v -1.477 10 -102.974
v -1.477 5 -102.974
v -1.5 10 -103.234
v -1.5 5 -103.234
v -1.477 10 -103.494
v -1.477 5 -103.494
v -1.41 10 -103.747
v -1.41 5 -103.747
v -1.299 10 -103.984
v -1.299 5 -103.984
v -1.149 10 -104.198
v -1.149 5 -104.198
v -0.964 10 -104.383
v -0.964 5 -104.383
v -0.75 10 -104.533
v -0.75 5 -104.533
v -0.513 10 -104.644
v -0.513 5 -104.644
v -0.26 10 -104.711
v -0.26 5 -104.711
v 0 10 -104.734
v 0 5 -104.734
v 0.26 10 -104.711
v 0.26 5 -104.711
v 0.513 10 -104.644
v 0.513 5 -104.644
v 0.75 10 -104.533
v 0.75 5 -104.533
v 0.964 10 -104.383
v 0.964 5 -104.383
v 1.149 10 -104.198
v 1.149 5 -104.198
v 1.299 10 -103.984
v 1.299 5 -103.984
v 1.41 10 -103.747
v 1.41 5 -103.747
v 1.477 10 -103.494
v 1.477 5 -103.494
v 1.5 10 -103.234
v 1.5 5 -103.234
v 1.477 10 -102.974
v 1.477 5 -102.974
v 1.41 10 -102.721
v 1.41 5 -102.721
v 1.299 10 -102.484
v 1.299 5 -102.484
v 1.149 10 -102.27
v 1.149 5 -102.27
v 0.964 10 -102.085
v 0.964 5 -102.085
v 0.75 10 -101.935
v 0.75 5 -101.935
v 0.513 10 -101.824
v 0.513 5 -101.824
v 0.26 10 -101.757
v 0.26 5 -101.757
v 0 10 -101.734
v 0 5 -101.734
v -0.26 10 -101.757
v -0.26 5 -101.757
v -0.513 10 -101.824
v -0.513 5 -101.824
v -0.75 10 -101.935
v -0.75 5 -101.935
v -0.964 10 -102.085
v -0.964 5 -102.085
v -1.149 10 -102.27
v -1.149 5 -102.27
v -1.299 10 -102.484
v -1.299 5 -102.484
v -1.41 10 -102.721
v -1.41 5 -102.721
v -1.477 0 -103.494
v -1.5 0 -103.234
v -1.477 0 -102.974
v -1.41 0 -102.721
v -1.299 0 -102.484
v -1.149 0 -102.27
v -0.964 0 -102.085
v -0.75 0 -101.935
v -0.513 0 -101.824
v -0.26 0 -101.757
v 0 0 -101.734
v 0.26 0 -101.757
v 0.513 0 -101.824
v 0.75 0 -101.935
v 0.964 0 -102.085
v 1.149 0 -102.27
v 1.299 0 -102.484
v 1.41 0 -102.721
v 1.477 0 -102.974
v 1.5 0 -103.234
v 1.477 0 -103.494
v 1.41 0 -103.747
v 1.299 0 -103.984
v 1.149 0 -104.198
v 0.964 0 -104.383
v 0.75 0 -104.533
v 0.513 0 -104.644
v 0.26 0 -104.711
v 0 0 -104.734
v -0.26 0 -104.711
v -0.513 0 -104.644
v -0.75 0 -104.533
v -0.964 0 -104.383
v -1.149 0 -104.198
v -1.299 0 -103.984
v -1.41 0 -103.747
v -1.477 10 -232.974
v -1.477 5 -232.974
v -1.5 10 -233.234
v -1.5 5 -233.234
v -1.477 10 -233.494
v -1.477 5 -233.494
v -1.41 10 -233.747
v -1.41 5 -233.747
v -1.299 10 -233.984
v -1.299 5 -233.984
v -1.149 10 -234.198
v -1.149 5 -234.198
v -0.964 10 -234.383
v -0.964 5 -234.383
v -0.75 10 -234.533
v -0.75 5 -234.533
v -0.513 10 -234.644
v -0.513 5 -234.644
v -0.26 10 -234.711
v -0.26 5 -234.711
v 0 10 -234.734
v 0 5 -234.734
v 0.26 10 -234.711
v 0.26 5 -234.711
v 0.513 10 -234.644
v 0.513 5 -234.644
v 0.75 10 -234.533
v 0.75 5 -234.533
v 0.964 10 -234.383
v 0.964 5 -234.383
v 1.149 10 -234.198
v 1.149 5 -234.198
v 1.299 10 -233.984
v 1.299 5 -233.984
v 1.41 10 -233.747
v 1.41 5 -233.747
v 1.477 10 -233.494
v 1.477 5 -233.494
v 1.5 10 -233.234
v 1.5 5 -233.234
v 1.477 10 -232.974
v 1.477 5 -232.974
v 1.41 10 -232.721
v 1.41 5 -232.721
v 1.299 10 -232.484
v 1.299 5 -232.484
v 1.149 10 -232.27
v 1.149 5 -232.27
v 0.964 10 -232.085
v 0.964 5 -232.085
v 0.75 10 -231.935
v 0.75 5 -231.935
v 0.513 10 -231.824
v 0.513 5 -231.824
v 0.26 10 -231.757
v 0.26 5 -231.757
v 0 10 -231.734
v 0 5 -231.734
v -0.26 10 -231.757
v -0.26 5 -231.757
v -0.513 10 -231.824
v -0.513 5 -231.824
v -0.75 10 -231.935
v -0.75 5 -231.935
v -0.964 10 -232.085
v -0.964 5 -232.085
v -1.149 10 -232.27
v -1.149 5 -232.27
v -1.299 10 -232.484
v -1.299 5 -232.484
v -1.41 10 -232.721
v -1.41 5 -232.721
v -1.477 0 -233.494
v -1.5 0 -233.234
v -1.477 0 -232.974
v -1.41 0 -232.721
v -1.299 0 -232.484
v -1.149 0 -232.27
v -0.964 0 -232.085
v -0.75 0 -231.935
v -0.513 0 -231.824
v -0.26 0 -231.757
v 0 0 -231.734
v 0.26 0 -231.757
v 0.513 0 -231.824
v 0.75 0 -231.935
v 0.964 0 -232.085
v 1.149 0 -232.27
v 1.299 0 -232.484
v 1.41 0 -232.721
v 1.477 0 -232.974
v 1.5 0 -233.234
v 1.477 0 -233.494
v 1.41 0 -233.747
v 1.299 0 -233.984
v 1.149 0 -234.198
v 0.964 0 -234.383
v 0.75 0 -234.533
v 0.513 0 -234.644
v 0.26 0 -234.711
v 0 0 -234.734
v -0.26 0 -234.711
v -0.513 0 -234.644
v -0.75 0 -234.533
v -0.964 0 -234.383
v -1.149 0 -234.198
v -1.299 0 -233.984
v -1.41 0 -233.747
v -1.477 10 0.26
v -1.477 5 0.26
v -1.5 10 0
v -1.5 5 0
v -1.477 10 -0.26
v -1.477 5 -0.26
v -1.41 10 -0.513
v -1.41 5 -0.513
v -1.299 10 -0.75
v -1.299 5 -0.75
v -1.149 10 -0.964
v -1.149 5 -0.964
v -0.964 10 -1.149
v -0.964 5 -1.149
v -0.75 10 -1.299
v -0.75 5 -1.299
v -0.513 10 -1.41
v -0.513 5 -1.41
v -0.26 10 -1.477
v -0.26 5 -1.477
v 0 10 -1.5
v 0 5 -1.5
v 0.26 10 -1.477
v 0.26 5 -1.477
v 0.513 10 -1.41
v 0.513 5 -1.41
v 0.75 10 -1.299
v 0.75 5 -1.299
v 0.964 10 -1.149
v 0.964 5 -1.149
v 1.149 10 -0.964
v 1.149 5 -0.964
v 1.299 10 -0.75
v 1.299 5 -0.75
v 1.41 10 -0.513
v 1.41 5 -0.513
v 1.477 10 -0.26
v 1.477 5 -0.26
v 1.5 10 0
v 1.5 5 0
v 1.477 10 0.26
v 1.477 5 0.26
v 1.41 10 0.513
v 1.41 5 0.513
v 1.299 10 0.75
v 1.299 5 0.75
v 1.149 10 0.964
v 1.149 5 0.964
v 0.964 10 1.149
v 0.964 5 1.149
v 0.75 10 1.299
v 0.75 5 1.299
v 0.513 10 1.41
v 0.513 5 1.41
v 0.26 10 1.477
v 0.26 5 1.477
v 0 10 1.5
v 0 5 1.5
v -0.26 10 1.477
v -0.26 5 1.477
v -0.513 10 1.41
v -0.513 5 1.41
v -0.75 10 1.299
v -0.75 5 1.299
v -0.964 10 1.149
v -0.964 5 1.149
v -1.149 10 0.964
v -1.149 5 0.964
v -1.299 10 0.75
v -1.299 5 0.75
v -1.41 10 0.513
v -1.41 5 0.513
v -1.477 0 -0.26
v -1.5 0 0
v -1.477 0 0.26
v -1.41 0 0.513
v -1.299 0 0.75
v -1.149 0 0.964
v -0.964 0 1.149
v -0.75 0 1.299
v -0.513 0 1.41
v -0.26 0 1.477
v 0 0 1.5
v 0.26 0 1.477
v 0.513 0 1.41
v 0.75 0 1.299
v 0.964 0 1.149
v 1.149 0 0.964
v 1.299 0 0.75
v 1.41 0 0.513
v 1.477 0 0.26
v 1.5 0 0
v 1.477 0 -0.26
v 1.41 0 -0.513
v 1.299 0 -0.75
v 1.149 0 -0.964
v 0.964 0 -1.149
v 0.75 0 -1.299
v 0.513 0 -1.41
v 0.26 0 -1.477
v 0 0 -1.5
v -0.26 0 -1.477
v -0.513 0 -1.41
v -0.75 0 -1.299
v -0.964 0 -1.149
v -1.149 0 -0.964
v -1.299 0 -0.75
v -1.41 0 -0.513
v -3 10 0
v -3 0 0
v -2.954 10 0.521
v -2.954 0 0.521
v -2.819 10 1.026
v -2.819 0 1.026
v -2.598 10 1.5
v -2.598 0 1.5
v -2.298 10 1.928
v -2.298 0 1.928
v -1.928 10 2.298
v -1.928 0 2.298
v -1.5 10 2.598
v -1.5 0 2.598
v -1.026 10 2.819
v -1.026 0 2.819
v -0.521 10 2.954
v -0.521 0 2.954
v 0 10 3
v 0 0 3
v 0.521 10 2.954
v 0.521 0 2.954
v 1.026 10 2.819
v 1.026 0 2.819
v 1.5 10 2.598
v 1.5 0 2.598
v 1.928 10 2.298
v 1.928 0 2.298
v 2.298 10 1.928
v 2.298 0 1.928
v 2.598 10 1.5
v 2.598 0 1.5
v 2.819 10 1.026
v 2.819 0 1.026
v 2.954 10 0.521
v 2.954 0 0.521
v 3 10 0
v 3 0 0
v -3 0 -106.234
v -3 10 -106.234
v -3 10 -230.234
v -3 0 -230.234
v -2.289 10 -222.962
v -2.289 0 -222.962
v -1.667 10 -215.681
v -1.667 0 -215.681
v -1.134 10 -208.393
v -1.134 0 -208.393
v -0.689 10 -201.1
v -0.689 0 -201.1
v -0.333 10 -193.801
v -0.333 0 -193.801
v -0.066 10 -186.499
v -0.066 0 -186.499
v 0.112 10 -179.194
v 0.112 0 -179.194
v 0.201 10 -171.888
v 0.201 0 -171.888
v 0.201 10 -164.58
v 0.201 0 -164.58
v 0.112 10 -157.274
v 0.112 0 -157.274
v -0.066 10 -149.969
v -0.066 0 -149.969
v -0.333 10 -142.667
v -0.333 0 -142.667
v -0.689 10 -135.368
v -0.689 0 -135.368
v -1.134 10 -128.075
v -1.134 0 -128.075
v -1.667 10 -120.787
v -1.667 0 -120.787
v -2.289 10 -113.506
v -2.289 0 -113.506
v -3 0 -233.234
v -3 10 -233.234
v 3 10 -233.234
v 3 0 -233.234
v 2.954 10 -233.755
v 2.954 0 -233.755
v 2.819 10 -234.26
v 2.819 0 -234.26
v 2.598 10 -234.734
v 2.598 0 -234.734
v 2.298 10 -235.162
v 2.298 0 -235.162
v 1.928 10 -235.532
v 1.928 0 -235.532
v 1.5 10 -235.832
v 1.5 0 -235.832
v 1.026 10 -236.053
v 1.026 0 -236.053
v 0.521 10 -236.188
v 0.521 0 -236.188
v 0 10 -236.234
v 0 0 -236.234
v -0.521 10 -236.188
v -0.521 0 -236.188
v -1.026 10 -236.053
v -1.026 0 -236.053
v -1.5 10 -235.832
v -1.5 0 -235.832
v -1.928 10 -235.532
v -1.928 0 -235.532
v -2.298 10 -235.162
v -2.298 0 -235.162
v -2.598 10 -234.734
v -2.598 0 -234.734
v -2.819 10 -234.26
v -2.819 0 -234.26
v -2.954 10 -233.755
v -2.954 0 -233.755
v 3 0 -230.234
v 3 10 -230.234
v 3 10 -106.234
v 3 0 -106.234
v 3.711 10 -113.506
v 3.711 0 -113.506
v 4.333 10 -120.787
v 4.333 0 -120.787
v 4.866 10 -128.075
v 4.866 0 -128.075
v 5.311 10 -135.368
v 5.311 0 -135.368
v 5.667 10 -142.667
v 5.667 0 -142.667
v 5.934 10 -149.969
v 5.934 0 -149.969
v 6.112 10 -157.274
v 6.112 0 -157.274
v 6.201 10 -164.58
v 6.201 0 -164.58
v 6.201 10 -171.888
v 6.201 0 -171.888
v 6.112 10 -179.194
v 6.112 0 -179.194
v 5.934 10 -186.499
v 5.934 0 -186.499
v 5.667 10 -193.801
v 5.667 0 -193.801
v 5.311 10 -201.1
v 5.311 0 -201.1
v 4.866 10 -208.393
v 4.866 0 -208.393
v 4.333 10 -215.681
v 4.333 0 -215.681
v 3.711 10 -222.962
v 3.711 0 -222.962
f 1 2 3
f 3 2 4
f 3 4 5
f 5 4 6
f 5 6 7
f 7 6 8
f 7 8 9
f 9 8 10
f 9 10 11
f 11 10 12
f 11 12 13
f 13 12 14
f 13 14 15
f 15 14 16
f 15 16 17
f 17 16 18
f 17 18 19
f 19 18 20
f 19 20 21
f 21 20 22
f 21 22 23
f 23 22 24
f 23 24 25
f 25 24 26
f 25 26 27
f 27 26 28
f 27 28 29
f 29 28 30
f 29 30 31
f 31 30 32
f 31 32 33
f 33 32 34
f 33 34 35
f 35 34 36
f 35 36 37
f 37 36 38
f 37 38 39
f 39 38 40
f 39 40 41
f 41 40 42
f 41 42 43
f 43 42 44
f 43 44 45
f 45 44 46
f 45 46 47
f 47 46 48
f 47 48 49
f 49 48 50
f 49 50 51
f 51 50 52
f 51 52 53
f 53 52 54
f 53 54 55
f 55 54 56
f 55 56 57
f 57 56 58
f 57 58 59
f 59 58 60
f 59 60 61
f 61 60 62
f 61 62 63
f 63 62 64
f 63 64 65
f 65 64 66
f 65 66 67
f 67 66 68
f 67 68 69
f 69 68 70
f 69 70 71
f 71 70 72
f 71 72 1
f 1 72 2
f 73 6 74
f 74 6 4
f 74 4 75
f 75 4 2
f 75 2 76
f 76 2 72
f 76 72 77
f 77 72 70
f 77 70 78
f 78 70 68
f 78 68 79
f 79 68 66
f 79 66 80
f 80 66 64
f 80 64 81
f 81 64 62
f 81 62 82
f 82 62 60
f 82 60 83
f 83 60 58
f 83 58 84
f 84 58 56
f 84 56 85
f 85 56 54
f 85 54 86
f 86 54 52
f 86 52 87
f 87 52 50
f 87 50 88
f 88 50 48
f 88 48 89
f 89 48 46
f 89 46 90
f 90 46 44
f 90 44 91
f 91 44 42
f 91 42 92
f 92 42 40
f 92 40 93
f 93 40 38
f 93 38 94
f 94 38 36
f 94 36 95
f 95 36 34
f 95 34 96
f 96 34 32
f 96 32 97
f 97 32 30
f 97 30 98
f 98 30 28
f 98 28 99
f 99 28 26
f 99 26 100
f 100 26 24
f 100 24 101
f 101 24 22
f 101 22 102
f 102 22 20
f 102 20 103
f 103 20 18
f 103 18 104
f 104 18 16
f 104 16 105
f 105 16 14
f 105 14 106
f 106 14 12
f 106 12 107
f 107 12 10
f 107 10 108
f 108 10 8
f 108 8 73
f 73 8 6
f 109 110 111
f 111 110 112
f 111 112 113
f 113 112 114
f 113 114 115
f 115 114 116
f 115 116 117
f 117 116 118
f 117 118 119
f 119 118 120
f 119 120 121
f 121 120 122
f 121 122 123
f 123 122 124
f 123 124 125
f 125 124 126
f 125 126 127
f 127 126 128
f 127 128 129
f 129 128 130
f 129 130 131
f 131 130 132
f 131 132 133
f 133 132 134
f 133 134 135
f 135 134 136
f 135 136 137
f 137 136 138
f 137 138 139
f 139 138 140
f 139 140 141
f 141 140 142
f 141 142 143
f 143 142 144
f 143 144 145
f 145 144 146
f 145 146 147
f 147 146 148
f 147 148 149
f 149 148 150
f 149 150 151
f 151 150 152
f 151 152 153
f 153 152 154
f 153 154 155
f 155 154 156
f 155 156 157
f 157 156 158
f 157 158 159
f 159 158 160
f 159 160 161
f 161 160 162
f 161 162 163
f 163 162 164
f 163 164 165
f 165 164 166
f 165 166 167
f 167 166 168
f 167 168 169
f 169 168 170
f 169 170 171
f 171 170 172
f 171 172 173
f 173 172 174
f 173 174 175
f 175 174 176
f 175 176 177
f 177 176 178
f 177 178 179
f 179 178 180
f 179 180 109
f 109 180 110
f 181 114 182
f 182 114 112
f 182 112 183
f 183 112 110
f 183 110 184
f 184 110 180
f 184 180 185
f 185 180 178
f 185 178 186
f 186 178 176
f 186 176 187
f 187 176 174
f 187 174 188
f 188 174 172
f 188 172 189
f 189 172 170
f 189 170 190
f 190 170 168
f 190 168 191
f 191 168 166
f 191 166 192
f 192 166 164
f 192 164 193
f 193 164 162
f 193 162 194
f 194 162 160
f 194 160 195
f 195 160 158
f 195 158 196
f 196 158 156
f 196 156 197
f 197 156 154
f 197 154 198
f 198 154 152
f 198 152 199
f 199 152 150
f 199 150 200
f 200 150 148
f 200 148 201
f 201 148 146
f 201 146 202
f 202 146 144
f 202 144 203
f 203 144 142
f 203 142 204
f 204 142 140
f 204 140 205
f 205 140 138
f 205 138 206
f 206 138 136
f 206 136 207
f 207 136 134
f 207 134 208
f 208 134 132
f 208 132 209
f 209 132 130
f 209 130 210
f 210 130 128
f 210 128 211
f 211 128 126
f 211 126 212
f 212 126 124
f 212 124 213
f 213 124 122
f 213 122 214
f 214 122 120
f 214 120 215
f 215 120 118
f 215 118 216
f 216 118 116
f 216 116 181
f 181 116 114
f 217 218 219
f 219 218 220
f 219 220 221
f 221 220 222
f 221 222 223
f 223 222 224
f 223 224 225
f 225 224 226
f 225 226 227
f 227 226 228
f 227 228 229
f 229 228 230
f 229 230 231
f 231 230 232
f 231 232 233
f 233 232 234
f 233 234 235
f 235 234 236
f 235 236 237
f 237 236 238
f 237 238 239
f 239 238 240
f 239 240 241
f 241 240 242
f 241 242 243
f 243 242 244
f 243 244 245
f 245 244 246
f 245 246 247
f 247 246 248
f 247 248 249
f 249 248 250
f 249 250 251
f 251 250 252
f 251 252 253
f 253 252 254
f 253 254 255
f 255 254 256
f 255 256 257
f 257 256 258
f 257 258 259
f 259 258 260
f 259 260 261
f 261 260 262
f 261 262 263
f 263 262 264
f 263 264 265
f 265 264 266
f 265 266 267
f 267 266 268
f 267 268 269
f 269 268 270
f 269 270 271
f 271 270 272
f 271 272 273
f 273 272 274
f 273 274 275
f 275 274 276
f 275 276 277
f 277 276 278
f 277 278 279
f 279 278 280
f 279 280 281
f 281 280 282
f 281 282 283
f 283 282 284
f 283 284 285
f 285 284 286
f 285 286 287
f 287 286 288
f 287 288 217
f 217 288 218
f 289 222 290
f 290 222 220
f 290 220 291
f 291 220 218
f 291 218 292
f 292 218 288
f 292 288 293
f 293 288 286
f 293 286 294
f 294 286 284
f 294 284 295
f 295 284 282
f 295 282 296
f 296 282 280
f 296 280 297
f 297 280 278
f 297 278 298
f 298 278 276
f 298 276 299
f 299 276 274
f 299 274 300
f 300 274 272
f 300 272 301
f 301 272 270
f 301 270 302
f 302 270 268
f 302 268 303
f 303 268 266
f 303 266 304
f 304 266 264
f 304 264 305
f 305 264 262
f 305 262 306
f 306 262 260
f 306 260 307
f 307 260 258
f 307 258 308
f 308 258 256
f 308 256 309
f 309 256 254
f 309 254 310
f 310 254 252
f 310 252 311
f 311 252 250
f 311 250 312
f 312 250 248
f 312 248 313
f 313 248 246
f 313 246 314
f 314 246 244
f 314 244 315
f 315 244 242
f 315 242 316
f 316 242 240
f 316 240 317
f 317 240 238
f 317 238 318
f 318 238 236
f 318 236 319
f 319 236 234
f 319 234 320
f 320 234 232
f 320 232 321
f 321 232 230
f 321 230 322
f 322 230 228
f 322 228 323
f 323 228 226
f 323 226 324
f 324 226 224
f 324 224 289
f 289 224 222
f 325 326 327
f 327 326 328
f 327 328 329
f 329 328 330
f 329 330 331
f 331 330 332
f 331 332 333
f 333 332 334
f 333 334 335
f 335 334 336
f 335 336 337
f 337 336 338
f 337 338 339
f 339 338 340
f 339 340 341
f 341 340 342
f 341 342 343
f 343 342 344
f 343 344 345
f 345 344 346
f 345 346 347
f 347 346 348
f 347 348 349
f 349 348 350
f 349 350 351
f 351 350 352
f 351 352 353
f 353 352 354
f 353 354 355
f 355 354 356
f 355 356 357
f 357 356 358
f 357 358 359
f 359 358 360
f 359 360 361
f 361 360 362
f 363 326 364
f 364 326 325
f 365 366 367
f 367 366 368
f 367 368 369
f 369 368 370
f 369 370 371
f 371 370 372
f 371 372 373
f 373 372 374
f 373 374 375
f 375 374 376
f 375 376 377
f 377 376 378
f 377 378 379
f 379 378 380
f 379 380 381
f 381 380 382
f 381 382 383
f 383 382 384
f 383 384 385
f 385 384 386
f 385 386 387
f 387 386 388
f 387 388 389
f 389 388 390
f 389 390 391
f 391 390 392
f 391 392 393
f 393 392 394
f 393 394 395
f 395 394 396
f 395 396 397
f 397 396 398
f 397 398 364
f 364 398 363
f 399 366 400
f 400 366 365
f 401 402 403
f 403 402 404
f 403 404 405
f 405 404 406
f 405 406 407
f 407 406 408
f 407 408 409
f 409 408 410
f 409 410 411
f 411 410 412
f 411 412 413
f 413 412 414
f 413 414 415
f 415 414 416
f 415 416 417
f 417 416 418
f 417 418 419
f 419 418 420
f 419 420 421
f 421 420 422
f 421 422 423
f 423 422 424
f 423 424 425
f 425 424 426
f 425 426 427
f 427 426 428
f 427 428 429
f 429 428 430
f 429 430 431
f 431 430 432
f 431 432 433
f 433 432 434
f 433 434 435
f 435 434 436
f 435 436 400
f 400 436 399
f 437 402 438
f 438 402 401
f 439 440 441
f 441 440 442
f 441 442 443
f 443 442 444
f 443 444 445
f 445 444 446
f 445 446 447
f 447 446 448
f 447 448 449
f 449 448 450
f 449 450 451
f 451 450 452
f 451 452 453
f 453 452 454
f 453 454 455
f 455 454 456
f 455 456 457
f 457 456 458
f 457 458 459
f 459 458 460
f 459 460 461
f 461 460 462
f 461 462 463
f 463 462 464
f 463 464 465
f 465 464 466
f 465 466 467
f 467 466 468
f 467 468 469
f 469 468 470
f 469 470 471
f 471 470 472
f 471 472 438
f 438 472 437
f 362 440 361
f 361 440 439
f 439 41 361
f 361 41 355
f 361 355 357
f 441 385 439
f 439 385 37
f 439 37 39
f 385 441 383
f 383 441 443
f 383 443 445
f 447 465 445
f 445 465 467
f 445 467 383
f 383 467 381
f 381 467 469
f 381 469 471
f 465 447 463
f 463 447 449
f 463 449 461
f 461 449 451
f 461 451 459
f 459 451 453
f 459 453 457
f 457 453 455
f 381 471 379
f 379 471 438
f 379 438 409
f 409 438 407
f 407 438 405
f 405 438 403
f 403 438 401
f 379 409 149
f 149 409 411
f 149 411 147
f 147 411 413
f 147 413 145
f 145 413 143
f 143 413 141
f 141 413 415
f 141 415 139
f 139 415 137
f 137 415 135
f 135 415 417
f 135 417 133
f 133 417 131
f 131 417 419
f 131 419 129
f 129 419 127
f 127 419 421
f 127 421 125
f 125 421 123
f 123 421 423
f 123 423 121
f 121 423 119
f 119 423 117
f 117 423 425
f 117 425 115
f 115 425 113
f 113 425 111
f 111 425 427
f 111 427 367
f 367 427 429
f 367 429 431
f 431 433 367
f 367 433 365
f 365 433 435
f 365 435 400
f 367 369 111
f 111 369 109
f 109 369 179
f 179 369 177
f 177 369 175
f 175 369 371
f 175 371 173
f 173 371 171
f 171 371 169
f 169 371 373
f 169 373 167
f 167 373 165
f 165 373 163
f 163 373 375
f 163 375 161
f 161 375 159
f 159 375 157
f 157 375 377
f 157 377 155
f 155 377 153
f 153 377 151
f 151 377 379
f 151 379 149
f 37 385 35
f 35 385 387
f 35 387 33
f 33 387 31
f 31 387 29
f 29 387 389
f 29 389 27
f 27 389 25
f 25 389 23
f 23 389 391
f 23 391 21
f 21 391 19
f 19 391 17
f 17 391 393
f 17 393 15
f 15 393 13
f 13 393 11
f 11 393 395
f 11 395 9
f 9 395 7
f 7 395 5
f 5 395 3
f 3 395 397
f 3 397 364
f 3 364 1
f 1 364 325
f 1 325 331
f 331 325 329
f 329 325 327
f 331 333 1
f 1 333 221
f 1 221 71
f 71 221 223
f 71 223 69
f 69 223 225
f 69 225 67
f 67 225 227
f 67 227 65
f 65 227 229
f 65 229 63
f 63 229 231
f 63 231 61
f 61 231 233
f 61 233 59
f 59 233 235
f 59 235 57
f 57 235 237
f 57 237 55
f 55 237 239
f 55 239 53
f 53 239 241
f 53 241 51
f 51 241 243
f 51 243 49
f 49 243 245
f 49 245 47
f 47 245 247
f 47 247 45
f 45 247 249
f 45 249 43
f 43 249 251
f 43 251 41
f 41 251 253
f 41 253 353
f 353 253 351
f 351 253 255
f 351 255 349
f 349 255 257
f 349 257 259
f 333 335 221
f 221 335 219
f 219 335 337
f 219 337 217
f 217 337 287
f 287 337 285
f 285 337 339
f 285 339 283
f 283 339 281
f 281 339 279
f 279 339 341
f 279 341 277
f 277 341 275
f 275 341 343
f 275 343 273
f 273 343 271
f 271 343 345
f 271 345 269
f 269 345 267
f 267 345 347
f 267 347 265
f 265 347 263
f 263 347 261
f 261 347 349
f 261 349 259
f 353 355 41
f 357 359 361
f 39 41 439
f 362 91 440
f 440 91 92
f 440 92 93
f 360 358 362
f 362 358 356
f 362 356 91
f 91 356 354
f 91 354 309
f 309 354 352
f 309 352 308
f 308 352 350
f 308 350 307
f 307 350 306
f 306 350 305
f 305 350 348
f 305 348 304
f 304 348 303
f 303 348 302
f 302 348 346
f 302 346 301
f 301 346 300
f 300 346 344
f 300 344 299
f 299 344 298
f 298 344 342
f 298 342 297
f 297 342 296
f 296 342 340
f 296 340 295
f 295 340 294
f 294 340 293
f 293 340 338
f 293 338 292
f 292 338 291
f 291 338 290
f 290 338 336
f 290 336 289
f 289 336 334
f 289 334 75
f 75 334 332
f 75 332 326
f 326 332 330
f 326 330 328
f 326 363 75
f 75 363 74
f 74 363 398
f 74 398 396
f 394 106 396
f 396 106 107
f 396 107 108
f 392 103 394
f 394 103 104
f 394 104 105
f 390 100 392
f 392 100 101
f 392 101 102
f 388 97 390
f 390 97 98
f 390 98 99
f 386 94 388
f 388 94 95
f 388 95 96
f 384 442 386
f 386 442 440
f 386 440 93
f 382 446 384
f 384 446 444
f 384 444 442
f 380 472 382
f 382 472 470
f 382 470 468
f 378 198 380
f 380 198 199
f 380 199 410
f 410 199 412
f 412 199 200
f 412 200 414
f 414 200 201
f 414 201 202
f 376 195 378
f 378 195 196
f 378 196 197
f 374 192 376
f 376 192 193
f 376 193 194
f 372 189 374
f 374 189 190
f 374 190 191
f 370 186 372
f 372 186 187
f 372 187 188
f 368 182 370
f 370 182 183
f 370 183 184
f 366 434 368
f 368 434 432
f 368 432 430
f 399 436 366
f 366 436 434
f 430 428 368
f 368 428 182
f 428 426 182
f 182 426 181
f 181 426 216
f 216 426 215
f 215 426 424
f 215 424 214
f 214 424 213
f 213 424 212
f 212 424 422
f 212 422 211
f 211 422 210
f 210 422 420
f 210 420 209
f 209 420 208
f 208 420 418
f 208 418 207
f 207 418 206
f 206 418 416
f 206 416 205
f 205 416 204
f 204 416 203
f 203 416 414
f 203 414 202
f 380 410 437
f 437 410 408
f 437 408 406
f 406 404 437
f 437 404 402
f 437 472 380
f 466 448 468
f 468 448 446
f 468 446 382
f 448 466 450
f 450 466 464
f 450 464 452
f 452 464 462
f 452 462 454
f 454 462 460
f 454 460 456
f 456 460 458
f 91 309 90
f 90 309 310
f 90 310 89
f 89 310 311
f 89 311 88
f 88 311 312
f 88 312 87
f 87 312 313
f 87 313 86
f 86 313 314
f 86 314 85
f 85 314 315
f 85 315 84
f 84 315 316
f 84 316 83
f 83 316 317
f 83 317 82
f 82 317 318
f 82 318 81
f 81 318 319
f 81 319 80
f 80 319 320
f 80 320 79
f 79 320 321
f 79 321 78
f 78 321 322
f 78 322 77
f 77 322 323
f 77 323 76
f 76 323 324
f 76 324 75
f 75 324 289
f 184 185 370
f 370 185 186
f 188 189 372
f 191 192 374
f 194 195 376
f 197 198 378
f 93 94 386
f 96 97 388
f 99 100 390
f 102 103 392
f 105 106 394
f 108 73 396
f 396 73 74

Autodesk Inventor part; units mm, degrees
ref_plane "YZ Plane" through (0, 0, 0) normal (1, 0, 0) x (0, 1, 0)
ref_plane "XZ Plane" through (0, 0, 0) normal (0, 1, 0) x (-1, 0, 0)
ref_plane "XY Plane" through (0, 0, 0) normal (0, 0, 1) x (1, 0, 0)
sketch "Sketch1" plane through (0, 0, 0) normal (0, 1, 0) x (-1, 0, 0)
  line L0 (0, 0) -> (0, -233.234) construction
  line L1 (-3, 0) -> (-3, -233.234)
  line L2 (3, -233.234) -> (3, 0)
  arc A0 (3, 0) -> (-3, 0) centre (0, 0) ccw
  arc A1 (-3, -233.234) -> (3, -233.234) centre (0, -233.234) ccw
  circle A2 centre (0, 0) radius 1.5
  circle A3 centre (0, -233.234) radius 1.5
  circle A4 centre (0, -103.234) radius 1.5
  arc A5 (3, -106.234) -> (3, -230.234) centre (599.7881, -168.234) ccw
  arc A6 (-3, -106.234) -> (-3, -230.234) centre (593.7881, -168.234) ccw
  point P0 (0, -116.617)
  dimension "d0" = 6
  dimension "d1" = 233.234
  dimension "d2" = 3
  dimension "d3" = 3
  dimension "d16" = 3
  dimension "d17" = 103.234
  dimension "d20" = 600
  dimension "d21" = 3
  dimension "d22" = 3
  dimension "d23" = 600
extrude "Extrusion1" add sketch "Sketch1" along normal blind 10 contours A0 L2 A5 A1 L1 | L1 A6
